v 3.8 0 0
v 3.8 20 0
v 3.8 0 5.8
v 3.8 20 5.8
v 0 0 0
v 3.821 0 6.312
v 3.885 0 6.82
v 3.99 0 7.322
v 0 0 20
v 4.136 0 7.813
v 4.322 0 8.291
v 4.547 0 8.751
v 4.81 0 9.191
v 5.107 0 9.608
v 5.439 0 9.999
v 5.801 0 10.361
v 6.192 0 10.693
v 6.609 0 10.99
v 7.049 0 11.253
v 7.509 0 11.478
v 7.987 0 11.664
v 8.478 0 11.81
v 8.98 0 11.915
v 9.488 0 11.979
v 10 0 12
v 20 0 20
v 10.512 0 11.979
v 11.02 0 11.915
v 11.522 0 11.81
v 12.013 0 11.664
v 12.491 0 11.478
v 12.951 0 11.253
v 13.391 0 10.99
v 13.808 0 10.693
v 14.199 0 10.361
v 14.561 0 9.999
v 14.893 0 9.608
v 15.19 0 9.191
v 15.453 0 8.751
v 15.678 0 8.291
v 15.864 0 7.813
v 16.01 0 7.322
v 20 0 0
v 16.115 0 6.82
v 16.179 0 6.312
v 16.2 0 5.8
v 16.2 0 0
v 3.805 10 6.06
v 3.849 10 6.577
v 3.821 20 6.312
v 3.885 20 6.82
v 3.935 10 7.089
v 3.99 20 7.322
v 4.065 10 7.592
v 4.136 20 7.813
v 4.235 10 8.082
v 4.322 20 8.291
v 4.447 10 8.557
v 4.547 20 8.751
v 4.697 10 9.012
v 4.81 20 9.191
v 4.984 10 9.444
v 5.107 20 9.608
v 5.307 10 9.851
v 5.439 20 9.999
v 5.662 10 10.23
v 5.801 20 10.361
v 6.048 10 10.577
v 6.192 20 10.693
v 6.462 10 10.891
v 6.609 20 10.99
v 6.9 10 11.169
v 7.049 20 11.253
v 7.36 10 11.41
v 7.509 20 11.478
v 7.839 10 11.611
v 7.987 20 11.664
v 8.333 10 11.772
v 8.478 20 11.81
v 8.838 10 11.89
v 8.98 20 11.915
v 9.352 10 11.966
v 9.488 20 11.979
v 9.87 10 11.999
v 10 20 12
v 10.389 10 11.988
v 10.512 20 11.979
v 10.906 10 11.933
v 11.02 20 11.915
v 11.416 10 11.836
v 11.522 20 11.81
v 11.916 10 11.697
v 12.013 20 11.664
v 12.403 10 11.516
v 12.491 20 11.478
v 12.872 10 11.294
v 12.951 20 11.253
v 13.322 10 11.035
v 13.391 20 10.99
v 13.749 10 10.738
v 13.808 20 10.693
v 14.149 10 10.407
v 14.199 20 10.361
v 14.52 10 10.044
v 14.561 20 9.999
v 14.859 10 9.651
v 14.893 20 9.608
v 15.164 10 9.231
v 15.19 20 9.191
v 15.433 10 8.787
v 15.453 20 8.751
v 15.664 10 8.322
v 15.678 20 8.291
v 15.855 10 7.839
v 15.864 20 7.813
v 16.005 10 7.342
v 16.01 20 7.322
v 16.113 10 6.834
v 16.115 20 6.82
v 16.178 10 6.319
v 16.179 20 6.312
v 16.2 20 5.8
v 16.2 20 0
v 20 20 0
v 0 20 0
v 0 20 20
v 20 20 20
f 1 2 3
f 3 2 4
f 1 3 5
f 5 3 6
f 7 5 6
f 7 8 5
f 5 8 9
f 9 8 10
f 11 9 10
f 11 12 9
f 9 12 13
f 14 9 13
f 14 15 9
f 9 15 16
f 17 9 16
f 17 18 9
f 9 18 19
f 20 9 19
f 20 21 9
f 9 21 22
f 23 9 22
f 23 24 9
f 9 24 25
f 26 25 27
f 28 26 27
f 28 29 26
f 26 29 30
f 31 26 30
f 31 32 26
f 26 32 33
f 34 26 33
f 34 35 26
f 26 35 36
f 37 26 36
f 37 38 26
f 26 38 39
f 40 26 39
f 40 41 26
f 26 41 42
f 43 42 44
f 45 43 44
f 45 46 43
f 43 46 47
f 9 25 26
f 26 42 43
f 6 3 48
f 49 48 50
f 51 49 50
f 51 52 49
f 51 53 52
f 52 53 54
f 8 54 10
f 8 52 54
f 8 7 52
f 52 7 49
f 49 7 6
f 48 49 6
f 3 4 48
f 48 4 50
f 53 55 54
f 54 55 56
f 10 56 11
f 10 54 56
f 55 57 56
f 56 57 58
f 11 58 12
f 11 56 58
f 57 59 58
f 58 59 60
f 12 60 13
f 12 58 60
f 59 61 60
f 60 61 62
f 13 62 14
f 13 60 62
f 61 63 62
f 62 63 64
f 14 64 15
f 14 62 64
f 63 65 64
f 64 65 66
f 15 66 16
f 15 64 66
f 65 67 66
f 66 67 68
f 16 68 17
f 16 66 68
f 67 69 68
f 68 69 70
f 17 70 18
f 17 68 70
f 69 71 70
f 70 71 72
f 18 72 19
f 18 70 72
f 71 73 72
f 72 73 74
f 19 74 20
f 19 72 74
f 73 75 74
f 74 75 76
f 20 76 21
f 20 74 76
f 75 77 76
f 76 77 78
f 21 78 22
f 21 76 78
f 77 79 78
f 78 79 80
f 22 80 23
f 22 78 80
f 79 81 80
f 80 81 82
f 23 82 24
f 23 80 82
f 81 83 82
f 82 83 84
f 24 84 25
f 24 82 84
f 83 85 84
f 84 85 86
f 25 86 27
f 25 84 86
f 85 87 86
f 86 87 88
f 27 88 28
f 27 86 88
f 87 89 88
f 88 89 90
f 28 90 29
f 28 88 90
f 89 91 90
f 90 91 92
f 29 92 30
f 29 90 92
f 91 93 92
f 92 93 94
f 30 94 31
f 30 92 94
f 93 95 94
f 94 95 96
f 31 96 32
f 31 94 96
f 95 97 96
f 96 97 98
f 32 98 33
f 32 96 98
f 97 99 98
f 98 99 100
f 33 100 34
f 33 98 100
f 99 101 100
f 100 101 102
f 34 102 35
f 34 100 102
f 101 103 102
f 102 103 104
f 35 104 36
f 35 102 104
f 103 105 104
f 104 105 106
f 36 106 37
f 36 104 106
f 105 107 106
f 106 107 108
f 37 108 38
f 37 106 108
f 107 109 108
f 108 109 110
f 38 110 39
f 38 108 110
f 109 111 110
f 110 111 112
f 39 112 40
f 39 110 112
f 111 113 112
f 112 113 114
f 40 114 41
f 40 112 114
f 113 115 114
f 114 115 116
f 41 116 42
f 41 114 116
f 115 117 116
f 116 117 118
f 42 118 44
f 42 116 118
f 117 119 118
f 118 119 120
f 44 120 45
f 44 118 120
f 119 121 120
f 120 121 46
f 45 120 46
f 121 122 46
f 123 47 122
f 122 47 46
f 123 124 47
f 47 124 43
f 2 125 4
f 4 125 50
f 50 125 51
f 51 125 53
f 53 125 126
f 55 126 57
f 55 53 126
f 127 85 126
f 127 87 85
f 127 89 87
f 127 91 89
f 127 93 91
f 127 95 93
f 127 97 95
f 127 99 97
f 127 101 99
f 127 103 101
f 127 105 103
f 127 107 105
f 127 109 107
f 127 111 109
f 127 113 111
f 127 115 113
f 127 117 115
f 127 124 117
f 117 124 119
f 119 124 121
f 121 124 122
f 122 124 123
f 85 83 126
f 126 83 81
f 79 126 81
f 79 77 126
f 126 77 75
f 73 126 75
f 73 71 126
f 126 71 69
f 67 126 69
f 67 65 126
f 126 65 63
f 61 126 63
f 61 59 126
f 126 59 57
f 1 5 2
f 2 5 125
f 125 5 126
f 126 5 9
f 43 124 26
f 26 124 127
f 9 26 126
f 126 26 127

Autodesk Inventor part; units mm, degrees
ref_plane "YZ Plane" through (0, 0, 0) normal (1, 0, 0) x (0, 1, 0)
ref_plane "XZ Plane" through (0, 0, 0) normal (0, 1, 0) x (-1, 0, 0)
ref_plane "XY Plane" through (0, 0, 0) normal (0, 0, 1) x (1, 0, 0)
sketch "Sketch1" plane through (0, 0, 0) normal (0, 0, 1) x (1, 0, 0)
  line L0 (0, 0) -> (20, 0)
  line L1 (20, 0) -> (20, 20)
  line L2 (20, 20) -> (0, 20)
  line L3 (0, 20) -> (0, 0)
  dimension "d0" = 20
  dimension "d1" = 20
extrude "Extrusion1" add sketch "Sketch1" along normal blind 20
sketch "Sketch2" plane through (0, 20, 0) normal (0, 1, 0) x (1, 0, 0)
  line L0 (20, 0) -> (0, 0) projected
  line L1 (20, 0) -> (20, -20) projected
  circle A0 centre (10, -5.8) radius 6.2
  dimension "d4" = 12.4
  dimension "d5" = 10
  dimension "d6" = 5.8
extrude "Extrusion2" cut sketch "Sketch2" against normal blind 20
sketch "Sketch5" plane through (0, 0, 0) normal (0, 0, -1) x (-1, 0, 0)
  line L0 (-12.1909, 0) -> (-12.1909, 20) projected
  line L1 (-20, 20) -> (-12.1909, 20) projected
  line L2 (-12.1909, 0) -> (-20, 0) projected
  line L3 (-16.2, 20) -> (-16.2, 0) projected
  point P0 (0, 0)
extrude "Extrusion3" cut sketch "Sketch5" against normal blind 5.8
sketch "Sketch6" plane through (0, 0, 0) normal (0, 0, -1) x (-1, 0, 0)
  line L0 (-7.8091, 20) -> (-7.8091, 0) projected
  line L1 (0, 0) -> (-7.8091, 0) projected
  line L2 (-7.8091, 20) -> (0, 20) projected
  line L3 (-3.8, 20) -> (-3.8, 0) projected
extrude "Extrusion4" cut sketch "Sketch6" against normal blind 5.8
properties part number "SupportBlocks"
